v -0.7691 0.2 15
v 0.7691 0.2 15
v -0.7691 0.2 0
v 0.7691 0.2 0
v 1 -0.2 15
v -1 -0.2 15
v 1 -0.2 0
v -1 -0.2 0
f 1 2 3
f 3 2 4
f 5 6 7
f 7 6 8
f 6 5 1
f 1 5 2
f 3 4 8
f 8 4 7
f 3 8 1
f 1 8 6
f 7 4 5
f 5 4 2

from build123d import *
from OCP.BRepFilletAPI import BRepFilletAPI_MakeChamfer

# Parameters (mm, degrees)
SKETCH1_W           = 2
SKETCH1_H           = 0.4
BOSS_EXTRUDE1_DEPTH = 15
CHAMFER1_SIZE       = 0.230940108
CHAMFER1_SIZE_2     = 0.4


with BuildPart() as part:
    # Sketch1 → Boss-Extrude1 (new body)
    with BuildSketch(Plane.XY):
        Rectangle(SKETCH1_W, SKETCH1_H)
    extrude(amount=BOSS_EXTRUDE1_DEPTH)

    # Chamfer1
    chamfer1_edges_1 = [part.edges().sort_by_distance(p)[0] for p in [
        (-1, 0.2, 7.5),
    ]]
    chamfer1_side_1 = [part.faces().sort_by_distance(p)[0] for p in [
        (-0.995381198, 0.2, 7.5),
    ]]
    chamfer1_edges_2 = [part.edges().sort_by_distance(p)[0] for p in [
        (1, 0.2, 7.5),
    ]]
    chamfer1_side_2 = [part.faces().sort_by_distance(p)[0] for p in [
        (1, 0.195381198, 7.5),
    ]]
    chamfer1 = BRepFilletAPI_MakeChamfer(part.part.solid().wrapped)
    for e in chamfer1_edges_1:
        chamfer1.Add(CHAMFER1_SIZE - 0.0001, CHAMFER1_SIZE_2 - 0.0001, e.wrapped, chamfer1_side_1[0].wrapped)
    for e in chamfer1_edges_2:
        chamfer1.Add(CHAMFER1_SIZE_2 - 0.0001, CHAMFER1_SIZE - 0.0001, e.wrapped, chamfer1_side_2[0].wrapped)
    add(Compound.cast(chamfer1.Shape()), mode=Mode.REPLACE)  # a hair under: the kernel refuses the full size


solid = part.part
